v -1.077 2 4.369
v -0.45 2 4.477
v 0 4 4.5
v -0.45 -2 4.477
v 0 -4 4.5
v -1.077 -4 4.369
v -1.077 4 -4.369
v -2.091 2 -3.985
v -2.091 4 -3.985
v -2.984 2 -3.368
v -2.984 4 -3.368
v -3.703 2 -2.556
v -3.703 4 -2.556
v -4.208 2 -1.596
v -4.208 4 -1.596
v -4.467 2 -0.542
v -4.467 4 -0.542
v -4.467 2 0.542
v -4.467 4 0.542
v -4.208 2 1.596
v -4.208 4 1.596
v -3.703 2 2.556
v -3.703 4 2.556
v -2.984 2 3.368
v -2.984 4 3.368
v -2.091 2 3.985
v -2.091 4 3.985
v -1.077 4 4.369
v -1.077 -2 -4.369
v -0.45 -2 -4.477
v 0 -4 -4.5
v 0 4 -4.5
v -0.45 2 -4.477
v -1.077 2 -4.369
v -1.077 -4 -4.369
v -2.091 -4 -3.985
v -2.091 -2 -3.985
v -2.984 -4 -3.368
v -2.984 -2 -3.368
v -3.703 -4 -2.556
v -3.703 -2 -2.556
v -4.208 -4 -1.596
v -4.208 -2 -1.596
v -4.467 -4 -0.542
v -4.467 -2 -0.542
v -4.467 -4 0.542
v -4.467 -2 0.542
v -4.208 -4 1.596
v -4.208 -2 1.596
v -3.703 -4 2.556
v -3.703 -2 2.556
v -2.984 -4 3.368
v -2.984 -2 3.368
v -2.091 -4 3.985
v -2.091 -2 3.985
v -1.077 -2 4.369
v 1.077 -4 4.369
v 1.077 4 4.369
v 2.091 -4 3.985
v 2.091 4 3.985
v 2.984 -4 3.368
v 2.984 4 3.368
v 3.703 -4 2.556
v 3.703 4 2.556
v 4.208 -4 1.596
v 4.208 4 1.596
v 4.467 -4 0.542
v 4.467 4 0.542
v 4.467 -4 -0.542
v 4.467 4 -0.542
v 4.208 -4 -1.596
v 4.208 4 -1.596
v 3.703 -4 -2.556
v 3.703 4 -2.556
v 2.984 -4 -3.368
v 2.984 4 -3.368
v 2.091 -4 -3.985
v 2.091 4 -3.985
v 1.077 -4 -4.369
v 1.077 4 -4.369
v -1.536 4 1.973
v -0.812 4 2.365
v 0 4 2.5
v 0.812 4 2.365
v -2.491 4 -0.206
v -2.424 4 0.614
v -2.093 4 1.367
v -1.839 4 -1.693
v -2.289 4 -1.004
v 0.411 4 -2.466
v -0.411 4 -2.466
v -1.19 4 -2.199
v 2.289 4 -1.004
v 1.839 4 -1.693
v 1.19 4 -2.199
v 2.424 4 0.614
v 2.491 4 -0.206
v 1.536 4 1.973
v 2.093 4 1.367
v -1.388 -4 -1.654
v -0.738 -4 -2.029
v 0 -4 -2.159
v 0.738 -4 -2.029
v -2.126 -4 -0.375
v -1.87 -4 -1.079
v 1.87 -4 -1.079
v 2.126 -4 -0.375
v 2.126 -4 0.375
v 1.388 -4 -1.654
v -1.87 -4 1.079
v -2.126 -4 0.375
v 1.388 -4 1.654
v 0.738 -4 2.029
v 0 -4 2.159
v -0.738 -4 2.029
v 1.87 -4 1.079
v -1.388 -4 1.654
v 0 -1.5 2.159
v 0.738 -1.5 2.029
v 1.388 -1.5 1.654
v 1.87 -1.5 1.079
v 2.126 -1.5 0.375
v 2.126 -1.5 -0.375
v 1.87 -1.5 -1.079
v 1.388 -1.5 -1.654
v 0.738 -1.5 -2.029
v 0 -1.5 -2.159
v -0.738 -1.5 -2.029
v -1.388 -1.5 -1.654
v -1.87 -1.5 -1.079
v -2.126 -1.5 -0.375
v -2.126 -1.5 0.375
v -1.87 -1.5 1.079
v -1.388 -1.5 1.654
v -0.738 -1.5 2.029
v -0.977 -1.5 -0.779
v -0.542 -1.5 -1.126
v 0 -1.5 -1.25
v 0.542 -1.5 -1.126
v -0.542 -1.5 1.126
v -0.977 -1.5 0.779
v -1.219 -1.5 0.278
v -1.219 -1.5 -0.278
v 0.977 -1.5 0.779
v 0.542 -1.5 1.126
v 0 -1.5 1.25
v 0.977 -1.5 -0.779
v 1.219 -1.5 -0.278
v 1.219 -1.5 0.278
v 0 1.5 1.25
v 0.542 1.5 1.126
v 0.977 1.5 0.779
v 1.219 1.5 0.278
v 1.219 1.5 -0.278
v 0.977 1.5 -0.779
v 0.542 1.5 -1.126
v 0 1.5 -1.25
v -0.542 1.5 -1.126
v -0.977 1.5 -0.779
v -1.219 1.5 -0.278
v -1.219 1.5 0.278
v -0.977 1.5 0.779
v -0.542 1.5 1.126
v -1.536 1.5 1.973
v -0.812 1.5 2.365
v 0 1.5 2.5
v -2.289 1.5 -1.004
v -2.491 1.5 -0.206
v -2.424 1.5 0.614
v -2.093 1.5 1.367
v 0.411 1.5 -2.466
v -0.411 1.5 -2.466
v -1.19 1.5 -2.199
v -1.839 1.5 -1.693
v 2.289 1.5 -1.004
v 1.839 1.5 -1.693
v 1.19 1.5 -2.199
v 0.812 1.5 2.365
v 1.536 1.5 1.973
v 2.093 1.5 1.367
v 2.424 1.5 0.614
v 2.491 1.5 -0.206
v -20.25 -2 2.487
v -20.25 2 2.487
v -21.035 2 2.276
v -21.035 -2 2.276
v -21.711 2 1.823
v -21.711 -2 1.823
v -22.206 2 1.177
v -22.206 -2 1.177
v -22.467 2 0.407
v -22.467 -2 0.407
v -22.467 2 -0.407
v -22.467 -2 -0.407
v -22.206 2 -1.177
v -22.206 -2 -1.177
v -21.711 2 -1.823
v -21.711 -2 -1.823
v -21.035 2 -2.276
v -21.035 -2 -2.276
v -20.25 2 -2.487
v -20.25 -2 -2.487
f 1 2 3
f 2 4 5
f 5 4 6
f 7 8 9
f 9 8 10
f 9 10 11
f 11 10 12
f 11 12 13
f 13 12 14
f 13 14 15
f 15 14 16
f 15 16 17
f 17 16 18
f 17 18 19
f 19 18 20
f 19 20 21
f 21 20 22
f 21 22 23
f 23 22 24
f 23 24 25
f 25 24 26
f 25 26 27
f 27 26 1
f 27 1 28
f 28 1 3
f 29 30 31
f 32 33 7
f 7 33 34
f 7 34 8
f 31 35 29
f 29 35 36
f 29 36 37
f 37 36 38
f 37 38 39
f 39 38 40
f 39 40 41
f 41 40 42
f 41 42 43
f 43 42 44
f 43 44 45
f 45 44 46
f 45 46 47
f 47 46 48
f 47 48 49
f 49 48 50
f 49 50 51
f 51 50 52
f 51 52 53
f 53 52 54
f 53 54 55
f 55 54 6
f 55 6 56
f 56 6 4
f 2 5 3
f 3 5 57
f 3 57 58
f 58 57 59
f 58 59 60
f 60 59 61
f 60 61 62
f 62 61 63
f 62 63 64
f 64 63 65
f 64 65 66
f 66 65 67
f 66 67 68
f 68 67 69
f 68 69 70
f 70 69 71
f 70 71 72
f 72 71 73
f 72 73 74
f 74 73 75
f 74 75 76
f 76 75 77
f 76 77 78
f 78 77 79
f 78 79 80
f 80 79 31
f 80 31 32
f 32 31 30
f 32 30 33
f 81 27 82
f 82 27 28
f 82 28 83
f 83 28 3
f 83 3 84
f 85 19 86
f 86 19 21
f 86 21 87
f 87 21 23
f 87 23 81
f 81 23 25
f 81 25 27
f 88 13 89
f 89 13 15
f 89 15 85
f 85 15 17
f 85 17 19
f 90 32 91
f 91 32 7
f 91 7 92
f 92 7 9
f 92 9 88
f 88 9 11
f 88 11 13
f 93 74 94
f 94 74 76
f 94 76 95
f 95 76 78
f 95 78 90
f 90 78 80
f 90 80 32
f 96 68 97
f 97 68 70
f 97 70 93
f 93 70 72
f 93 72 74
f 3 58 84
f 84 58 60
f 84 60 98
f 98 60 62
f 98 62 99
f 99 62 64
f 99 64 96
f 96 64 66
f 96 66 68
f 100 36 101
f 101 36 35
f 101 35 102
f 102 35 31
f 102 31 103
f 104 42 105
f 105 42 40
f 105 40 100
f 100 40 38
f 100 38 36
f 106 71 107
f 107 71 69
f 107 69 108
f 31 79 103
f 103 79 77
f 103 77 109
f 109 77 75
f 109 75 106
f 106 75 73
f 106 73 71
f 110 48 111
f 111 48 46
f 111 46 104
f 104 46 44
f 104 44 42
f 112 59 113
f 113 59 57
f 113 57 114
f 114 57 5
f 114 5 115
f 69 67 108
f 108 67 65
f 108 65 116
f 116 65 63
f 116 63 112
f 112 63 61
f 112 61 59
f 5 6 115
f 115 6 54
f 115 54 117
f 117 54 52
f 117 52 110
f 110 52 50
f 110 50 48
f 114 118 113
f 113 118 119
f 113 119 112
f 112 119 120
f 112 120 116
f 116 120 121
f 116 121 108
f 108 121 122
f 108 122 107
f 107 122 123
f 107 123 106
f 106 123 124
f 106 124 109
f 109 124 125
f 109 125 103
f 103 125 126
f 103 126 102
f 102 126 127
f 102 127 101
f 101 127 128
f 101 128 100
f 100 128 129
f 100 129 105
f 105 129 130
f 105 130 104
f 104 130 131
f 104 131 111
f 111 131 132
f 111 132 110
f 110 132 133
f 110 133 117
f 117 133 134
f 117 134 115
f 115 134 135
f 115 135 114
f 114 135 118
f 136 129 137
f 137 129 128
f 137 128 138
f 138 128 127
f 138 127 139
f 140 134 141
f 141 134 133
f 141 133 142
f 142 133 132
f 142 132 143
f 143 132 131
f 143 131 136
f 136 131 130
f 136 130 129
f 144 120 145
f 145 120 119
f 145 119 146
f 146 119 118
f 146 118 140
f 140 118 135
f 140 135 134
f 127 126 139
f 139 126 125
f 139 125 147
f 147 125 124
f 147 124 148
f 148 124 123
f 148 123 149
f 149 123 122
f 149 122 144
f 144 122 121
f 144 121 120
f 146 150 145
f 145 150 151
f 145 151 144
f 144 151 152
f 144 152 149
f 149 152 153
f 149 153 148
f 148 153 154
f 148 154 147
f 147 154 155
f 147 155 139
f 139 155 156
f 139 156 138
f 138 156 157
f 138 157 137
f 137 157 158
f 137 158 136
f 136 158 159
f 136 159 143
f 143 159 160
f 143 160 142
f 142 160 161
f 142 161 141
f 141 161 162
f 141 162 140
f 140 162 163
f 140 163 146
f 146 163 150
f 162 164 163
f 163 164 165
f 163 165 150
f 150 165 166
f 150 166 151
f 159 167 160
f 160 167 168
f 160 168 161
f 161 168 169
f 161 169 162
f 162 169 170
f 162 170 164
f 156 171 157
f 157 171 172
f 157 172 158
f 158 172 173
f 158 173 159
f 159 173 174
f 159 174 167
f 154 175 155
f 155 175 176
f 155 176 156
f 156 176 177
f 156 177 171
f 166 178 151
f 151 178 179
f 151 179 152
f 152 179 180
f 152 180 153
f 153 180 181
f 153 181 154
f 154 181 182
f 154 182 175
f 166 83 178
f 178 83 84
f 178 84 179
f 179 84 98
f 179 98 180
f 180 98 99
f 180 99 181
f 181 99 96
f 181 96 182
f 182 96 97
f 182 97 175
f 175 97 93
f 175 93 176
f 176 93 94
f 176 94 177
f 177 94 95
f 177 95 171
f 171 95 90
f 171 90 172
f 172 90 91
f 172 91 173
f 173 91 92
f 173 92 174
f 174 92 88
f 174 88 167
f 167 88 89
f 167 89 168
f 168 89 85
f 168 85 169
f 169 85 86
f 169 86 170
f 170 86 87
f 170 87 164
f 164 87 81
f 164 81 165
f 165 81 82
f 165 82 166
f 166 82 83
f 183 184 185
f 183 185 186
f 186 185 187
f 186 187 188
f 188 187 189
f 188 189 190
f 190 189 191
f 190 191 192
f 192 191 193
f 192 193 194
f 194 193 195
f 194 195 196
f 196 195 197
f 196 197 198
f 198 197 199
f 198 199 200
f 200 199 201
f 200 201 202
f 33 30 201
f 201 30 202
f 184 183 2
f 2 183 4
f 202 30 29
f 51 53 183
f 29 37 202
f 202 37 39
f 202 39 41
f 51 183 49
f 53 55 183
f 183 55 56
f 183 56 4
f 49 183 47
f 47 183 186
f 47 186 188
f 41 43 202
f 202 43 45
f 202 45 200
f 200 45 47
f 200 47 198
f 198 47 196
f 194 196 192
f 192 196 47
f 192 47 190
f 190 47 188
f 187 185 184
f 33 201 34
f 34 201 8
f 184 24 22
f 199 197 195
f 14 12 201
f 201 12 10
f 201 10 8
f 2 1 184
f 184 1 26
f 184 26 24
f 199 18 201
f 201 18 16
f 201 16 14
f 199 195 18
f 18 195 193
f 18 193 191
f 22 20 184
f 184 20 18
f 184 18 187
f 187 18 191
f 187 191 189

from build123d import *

# Parameters (mm, degrees)
SALIENTE_EXTRUIR1_DEPTH      = 2
SALIENTE_EXTRUIR1_DEPTH_BACK = 2


with BuildPart() as part:
    # Croquis1 → Revolución1 (revolve)
    with BuildSketch(Plane(origin=(0, 0, 0), x_dir=(0, 0, -1), z_dir=(1, 0, 0))):
        Polygon((-4.5, 4), (-4.5, -4), (-2.158881548, -4), (-2.158881548, -1.5), (-1.25, -1.5), (-1.25, 1.5), (-2.5, 1.5), (-2.5, 4), align=None)
    revolve(axis=Axis((0, 9.054619894, 0), (0, -1, 0)))

    # Croquis2 → Saliente-Extruir1 (add, two sides)
    with BuildSketch(Plane(origin=(0, 0, 0), x_dir=(1, 0, 0), z_dir=(0, 1, 0))) as saliente_extruir1_sk:
        with BuildLine():
            Line((-20.25, 2.487468593), (-0.45, 4.477443467))
            ThreePointArc((-0.45, 4.477443467), (-4.5, 0), (-0.45, -4.477443467))
            Line((-0.45, -4.477443467), (-20.25, -2.487468593))
            ThreePointArc((-20.25, -2.487468593), (-22.5, 0), (-20.25, 2.487468593))
        make_face()
    extrude(amount=SALIENTE_EXTRUIR1_DEPTH)
    extrude(saliente_extruir1_sk.sketch, amount=-SALIENTE_EXTRUIR1_DEPTH_BACK)


solid = part.part
